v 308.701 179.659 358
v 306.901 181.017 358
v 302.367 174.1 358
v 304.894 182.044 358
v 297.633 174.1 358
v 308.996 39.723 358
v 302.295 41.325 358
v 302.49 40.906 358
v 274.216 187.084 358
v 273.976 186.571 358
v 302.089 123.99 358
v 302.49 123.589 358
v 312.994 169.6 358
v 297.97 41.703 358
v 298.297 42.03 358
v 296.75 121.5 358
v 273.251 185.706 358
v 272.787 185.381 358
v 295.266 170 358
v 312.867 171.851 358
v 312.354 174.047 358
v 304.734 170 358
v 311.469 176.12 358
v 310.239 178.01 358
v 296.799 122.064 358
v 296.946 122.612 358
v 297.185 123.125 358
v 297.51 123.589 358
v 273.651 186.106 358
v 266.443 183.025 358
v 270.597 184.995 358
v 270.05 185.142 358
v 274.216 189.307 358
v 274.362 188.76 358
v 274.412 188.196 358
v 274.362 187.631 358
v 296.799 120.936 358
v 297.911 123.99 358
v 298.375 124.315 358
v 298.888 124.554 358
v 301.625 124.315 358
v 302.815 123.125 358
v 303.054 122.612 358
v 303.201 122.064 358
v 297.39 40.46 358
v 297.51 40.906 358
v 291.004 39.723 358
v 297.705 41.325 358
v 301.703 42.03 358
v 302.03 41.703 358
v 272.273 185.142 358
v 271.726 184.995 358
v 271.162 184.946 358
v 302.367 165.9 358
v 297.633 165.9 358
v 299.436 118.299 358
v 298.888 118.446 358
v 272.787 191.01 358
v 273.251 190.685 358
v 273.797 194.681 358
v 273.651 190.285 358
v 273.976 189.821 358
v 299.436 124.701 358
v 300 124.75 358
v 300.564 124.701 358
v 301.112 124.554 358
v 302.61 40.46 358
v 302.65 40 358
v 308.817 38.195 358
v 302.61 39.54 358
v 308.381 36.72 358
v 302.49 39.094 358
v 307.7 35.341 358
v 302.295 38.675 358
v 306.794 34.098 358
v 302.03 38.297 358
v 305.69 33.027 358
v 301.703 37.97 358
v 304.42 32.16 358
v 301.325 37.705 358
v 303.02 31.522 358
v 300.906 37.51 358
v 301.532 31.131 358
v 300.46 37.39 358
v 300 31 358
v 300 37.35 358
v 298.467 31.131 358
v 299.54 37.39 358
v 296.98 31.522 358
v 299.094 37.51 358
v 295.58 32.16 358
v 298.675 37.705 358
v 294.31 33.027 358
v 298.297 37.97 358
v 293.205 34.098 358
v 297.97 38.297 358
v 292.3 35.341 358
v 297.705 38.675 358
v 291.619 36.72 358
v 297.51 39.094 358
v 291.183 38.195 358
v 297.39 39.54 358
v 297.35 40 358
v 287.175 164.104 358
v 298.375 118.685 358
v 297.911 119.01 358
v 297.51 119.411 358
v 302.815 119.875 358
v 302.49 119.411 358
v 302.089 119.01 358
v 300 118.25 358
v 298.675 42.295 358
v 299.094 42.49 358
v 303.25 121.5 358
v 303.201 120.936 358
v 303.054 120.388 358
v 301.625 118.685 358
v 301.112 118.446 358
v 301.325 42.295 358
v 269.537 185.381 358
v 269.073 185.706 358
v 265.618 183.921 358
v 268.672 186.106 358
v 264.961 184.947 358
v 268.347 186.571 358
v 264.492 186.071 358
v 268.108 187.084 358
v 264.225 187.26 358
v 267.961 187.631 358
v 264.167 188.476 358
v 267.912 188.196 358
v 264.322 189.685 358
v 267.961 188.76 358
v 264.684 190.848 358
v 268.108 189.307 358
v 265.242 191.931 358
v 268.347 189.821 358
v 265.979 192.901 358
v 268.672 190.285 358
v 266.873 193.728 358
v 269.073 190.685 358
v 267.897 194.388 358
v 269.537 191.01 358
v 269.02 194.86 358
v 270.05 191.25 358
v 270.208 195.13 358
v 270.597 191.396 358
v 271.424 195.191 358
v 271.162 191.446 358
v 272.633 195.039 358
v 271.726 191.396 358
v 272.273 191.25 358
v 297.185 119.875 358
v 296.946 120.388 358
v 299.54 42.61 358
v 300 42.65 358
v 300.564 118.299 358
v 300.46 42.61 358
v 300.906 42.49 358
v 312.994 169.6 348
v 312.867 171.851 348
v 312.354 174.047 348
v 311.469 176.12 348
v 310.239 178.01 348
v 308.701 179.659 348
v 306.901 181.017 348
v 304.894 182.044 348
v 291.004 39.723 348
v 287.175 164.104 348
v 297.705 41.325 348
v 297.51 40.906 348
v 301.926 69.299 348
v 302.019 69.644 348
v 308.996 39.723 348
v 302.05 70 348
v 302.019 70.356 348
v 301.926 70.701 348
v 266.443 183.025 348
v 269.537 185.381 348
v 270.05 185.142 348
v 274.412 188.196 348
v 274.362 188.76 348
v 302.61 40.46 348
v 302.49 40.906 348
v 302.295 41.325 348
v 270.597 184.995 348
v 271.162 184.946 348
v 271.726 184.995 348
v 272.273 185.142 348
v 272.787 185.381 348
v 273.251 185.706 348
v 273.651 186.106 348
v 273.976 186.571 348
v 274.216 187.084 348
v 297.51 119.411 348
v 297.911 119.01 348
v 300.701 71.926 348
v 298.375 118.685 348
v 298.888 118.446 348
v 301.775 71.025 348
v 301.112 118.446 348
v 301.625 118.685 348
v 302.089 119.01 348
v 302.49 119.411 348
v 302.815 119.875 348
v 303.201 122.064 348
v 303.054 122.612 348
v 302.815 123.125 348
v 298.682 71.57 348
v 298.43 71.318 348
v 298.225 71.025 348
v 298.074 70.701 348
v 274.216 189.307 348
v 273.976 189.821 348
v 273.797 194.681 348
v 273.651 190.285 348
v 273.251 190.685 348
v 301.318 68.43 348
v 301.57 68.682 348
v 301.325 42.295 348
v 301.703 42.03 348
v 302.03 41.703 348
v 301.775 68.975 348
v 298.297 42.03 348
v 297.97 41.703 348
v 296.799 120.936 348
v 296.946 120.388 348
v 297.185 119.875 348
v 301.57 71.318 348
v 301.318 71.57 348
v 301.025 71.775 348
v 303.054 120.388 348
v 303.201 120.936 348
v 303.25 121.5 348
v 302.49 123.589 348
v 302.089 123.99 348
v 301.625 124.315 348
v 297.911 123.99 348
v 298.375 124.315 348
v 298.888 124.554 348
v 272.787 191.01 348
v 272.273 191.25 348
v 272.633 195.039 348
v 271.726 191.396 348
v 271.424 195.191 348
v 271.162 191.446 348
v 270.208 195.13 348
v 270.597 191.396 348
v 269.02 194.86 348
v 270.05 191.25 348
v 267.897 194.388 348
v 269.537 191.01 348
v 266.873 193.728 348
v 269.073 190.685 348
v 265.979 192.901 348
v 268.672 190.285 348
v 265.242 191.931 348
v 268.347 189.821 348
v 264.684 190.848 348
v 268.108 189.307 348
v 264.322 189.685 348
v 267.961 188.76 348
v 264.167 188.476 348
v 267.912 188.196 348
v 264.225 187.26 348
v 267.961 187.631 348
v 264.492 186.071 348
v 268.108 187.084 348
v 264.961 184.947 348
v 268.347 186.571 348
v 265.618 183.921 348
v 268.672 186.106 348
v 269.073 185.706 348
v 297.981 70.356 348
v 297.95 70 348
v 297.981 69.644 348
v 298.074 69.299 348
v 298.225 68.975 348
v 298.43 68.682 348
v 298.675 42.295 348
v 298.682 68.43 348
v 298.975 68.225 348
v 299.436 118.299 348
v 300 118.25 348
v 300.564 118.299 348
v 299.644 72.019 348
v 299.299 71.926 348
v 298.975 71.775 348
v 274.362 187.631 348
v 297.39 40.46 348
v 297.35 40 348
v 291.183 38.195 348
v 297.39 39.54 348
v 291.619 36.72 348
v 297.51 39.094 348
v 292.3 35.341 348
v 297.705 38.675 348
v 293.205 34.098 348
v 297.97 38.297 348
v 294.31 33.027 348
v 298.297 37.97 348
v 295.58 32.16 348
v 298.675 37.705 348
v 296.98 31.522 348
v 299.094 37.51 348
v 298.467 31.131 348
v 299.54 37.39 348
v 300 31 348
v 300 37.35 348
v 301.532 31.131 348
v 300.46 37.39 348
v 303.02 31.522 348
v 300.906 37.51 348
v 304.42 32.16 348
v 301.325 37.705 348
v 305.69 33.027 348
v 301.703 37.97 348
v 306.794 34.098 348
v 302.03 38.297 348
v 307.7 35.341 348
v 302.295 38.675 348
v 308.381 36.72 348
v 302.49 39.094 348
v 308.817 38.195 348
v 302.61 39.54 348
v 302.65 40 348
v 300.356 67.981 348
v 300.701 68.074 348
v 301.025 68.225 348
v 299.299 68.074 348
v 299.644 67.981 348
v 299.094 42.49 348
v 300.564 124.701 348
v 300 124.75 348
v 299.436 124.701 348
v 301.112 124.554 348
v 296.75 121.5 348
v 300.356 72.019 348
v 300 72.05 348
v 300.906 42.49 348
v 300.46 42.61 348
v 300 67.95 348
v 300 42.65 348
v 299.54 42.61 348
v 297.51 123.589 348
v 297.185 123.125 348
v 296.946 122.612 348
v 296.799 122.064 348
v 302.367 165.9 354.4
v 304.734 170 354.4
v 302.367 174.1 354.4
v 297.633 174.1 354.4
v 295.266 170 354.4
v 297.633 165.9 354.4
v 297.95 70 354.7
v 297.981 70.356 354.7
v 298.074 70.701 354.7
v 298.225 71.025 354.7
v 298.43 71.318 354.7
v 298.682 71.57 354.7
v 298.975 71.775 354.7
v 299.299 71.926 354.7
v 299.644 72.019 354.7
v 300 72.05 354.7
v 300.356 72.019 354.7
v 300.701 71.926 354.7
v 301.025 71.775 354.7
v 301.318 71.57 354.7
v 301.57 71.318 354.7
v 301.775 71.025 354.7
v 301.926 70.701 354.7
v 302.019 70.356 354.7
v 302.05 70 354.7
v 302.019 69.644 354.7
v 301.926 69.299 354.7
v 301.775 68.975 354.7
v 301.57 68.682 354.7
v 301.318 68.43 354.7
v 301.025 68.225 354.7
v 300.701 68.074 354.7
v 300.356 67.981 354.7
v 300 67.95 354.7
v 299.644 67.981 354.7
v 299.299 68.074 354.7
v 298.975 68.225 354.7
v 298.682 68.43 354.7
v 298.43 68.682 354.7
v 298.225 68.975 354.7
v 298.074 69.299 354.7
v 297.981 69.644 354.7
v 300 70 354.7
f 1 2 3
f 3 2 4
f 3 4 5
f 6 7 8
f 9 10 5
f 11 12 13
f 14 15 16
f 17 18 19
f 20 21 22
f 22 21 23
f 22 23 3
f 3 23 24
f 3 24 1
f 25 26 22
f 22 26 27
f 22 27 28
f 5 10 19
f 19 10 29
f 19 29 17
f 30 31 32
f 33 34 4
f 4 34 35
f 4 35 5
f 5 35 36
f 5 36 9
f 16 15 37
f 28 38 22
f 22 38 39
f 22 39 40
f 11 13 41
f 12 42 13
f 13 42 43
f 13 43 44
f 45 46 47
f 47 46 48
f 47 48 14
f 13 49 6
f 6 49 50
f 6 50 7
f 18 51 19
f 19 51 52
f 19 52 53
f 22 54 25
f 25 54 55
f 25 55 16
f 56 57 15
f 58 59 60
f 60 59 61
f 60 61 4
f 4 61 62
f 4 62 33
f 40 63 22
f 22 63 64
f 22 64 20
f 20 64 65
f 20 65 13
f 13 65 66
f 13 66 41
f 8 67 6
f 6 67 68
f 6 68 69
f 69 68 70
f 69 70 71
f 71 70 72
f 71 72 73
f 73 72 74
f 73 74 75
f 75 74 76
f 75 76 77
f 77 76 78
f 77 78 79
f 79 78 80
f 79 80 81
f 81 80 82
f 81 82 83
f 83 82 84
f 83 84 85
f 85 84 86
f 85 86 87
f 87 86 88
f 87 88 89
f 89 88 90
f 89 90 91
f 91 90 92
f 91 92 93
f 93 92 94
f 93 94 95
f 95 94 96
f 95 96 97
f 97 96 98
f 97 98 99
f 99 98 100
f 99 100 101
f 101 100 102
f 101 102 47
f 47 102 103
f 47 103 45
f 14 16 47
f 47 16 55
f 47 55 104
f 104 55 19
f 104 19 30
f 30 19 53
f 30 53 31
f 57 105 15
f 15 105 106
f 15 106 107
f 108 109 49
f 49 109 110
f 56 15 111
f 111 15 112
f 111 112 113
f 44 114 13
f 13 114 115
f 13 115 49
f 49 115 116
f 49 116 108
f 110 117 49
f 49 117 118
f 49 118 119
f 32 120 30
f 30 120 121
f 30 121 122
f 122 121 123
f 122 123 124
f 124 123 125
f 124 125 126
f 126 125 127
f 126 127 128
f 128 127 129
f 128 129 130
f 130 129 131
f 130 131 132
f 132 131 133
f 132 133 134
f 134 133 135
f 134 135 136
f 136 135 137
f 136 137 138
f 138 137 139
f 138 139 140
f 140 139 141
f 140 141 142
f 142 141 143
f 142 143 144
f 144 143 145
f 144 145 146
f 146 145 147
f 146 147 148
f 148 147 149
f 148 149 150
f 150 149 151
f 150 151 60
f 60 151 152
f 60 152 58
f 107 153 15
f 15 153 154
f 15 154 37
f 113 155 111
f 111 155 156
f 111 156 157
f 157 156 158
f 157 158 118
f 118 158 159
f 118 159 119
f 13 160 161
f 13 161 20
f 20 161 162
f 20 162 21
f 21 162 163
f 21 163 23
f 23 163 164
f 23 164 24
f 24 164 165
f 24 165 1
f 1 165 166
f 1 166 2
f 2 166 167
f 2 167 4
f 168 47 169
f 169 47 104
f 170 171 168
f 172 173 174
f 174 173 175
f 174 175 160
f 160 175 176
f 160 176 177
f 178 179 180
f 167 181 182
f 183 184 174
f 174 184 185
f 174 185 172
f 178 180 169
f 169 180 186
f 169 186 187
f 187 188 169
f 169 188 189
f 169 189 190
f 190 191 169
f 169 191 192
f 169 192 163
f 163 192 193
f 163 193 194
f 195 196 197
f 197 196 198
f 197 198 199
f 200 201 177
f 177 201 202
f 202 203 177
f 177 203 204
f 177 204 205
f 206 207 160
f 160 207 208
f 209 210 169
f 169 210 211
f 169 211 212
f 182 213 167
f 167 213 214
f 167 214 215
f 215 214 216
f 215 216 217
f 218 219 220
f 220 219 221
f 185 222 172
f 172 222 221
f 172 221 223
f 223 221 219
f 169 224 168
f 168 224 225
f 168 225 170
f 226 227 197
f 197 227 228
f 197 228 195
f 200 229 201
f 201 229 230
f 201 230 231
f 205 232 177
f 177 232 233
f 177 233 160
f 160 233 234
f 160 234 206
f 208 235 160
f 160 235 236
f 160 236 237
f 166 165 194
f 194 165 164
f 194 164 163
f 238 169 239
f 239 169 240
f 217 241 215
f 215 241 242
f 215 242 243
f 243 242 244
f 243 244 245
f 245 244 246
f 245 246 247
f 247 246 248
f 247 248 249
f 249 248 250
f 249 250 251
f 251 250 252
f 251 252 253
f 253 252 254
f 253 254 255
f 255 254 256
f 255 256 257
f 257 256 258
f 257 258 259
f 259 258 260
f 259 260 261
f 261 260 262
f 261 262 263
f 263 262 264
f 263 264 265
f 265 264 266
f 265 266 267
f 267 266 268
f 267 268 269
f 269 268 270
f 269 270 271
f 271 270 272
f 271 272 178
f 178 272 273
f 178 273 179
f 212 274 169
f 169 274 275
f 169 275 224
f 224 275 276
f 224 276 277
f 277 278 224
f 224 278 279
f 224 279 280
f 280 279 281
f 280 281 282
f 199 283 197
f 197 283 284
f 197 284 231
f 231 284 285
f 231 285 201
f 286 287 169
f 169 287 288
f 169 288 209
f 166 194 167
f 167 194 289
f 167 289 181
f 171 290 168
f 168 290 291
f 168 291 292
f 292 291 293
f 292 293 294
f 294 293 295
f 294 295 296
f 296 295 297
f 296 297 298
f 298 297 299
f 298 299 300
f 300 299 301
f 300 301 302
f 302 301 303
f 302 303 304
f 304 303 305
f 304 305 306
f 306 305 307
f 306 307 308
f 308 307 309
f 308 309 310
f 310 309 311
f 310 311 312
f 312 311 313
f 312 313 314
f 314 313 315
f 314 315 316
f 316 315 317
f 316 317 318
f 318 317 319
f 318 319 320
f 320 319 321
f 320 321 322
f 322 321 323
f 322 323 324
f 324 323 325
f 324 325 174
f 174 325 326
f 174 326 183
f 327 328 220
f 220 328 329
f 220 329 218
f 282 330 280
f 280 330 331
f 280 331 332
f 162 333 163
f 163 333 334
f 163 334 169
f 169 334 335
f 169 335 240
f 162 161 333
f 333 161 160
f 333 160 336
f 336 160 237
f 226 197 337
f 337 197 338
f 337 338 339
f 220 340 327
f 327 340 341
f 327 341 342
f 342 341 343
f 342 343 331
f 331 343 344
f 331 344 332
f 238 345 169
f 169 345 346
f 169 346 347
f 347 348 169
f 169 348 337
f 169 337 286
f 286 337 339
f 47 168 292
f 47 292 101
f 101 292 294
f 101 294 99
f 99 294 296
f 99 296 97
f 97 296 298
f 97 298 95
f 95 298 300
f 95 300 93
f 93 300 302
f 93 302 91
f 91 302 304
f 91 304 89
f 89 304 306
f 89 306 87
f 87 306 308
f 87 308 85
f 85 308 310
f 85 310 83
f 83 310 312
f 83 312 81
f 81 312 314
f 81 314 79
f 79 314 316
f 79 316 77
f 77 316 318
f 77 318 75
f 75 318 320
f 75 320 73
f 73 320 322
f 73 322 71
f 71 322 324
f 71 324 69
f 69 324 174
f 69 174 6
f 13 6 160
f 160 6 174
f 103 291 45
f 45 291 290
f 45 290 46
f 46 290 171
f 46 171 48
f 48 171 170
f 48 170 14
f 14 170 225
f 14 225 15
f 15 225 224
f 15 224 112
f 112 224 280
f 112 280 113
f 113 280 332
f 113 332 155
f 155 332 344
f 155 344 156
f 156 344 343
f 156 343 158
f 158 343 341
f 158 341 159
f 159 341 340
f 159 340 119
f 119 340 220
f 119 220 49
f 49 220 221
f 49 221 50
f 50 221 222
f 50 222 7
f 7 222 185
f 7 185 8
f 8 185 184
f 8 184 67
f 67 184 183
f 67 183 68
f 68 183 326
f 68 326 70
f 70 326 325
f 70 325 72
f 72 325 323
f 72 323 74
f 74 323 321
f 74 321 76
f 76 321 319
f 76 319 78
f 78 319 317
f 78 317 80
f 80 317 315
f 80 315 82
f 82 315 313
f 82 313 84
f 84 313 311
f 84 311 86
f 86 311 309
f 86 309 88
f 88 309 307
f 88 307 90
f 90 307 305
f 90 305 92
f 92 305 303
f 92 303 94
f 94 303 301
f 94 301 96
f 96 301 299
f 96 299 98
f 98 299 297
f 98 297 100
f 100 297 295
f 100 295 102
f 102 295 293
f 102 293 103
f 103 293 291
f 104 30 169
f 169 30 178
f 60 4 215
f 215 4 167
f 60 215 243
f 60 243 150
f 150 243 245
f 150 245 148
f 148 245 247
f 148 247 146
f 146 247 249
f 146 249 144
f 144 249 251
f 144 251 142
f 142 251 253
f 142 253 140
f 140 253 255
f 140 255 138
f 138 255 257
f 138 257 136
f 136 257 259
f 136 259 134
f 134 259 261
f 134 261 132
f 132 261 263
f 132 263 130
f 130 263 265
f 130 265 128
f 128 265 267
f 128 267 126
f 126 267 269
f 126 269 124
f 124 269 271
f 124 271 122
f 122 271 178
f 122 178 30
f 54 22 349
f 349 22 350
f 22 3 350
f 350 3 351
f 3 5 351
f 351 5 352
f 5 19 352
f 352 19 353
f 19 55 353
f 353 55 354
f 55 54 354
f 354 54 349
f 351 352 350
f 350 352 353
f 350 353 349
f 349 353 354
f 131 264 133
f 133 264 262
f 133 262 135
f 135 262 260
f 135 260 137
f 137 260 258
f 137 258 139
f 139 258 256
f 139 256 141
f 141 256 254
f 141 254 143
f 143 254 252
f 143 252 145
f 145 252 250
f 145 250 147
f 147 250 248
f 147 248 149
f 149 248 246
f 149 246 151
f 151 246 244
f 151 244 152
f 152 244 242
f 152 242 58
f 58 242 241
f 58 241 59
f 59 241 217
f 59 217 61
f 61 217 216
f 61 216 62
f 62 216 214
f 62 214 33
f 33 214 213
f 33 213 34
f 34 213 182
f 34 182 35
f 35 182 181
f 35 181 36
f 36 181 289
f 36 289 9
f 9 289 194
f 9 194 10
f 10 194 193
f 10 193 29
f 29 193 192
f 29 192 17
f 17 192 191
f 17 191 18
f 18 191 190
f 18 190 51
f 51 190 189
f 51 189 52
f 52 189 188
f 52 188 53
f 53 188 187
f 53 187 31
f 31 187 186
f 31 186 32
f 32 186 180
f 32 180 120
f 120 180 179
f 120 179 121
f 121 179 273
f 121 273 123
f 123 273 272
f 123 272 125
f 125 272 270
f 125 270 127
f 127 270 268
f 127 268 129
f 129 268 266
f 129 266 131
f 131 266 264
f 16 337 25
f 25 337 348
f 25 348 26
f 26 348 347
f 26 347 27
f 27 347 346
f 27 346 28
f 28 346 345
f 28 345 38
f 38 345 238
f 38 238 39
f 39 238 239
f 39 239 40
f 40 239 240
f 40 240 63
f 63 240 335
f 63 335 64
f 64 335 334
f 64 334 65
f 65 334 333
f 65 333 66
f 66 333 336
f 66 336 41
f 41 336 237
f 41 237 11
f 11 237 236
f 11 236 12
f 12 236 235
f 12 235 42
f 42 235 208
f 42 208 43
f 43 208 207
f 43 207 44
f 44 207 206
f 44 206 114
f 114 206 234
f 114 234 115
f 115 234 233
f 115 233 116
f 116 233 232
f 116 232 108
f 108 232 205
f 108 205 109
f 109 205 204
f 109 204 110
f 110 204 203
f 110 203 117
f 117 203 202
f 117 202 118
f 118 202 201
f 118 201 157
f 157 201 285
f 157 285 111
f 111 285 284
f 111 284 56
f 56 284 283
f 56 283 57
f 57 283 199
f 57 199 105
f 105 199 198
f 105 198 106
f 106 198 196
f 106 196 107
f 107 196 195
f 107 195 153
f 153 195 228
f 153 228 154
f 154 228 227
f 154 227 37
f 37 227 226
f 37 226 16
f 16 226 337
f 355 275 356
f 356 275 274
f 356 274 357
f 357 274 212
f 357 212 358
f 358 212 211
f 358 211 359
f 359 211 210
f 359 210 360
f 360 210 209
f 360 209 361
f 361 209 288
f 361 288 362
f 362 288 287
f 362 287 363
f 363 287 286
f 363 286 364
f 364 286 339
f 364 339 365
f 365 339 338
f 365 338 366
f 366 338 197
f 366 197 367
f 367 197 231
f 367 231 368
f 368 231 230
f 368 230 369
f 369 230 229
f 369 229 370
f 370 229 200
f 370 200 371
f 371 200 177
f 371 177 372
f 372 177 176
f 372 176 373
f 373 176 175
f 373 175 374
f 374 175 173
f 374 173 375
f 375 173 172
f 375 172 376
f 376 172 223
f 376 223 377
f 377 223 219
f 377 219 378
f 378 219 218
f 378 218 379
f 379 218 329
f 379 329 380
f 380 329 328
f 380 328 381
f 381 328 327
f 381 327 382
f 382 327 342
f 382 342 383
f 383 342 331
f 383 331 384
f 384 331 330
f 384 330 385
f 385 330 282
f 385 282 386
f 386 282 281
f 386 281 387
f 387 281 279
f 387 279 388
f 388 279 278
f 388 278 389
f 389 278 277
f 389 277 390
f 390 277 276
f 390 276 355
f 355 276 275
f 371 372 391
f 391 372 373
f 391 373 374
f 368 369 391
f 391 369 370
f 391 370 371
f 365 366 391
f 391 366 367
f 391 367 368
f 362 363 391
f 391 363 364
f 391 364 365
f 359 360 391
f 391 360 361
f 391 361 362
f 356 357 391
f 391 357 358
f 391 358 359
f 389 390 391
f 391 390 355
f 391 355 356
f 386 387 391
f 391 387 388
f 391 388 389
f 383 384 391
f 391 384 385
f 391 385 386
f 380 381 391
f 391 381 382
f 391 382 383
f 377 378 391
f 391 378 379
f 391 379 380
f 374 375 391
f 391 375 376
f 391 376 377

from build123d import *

# Parameters (mm, degrees)
SKETCH1_R           = 2.6
SKETCH1_R_2         = 2.65
BOSS_EXTRUDE1_DEPTH = 10
BOSS_EXTRUDE2_DEPTH = 10
CUT_EXTRUDE1_DEPTH  = 3.6
SKETCH4_R           = 3.25
CUT_EXTRUDE2_DEPTH  = 50
SKETCH5_R           = 2.05
CUT_EXTRUDE3_DEPTH  = 6.7


with BuildPart() as part:
    # Sketch1 → Boss-Extrude1 (new body)
    with BuildSketch(Plane.XY.offset(348)):
        with BuildLine():
            Line((287.006155303, 169.6), (291.004261364, 39.723076923))
            ThreePointArc((291.004261364, 39.723076923), (300, 31), (308.995738636, 39.723076923))
            Line((308.995738636, 39.723076923), (312.993844697, 169.6))
            ThreePointArc((312.993844697, 169.6), (300, 183), (287.006155303, 169.6))
        make_face()
        with Locations((300, 170)):
            Circle(SKETCH1_R, mode=Mode.SUBTRACT)
        with Locations((300, 40)):
            Circle(SKETCH1_R_2, mode=Mode.SUBTRACT)
    extrude(amount=BOSS_EXTRUDE1_DEPTH)

    # Sketch2 → Boss-Extrude2 (add)
    with BuildSketch(Plane.XY.offset(348)):
        with BuildLine():
            Line((304.894163453, 182.043552802), (273.797189857, 194.680494259))
            ThreePointArc((273.797189857, 194.680494259), (265.241776322, 191.9308059), (266.443148538, 183.025044191))
            Line((266.443148538, 183.025044191), (291.236658146, 160.397716962))
            ThreePointArc((291.236658146, 160.397716962), (310.994461682, 163.063011293), (304.894163453, 182.043552802))
        make_face()
    extrude(amount=BOSS_EXTRUDE2_DEPTH)

    # Sketch3 → Cut-Extrude1 (cut)
    with BuildSketch(Plane.XY.offset(354.4)):
        Polygon((304.734272207, 170), (302.367136104, 174.1), (297.632863896, 174.1), (295.265727793, 170), (297.632863896, 165.9), (302.367136104, 165.9), align=None)
    extrude(amount=CUT_EXTRUDE1_DEPTH, mode=Mode.SUBTRACT)

    # Sketch4 → Cut-Extrude2 (cut)
    with BuildSketch(Plane.XY.offset(348)):
        with Locations((300, 121.5)):
            Circle(SKETCH4_R)
        with Locations((271.161871074, 188.195504288)):
            Circle(SKETCH4_R)
    extrude(amount=CUT_EXTRUDE2_DEPTH, mode=Mode.SUBTRACT)

    # Sketch5 → Cut-Extrude3 (cut)
    with BuildSketch(Plane.XY.offset(348)):
        with Locations((300, 70)):
            Circle(SKETCH5_R)
    extrude(amount=CUT_EXTRUDE3_DEPTH, mode=Mode.SUBTRACT)


solid = part.part
